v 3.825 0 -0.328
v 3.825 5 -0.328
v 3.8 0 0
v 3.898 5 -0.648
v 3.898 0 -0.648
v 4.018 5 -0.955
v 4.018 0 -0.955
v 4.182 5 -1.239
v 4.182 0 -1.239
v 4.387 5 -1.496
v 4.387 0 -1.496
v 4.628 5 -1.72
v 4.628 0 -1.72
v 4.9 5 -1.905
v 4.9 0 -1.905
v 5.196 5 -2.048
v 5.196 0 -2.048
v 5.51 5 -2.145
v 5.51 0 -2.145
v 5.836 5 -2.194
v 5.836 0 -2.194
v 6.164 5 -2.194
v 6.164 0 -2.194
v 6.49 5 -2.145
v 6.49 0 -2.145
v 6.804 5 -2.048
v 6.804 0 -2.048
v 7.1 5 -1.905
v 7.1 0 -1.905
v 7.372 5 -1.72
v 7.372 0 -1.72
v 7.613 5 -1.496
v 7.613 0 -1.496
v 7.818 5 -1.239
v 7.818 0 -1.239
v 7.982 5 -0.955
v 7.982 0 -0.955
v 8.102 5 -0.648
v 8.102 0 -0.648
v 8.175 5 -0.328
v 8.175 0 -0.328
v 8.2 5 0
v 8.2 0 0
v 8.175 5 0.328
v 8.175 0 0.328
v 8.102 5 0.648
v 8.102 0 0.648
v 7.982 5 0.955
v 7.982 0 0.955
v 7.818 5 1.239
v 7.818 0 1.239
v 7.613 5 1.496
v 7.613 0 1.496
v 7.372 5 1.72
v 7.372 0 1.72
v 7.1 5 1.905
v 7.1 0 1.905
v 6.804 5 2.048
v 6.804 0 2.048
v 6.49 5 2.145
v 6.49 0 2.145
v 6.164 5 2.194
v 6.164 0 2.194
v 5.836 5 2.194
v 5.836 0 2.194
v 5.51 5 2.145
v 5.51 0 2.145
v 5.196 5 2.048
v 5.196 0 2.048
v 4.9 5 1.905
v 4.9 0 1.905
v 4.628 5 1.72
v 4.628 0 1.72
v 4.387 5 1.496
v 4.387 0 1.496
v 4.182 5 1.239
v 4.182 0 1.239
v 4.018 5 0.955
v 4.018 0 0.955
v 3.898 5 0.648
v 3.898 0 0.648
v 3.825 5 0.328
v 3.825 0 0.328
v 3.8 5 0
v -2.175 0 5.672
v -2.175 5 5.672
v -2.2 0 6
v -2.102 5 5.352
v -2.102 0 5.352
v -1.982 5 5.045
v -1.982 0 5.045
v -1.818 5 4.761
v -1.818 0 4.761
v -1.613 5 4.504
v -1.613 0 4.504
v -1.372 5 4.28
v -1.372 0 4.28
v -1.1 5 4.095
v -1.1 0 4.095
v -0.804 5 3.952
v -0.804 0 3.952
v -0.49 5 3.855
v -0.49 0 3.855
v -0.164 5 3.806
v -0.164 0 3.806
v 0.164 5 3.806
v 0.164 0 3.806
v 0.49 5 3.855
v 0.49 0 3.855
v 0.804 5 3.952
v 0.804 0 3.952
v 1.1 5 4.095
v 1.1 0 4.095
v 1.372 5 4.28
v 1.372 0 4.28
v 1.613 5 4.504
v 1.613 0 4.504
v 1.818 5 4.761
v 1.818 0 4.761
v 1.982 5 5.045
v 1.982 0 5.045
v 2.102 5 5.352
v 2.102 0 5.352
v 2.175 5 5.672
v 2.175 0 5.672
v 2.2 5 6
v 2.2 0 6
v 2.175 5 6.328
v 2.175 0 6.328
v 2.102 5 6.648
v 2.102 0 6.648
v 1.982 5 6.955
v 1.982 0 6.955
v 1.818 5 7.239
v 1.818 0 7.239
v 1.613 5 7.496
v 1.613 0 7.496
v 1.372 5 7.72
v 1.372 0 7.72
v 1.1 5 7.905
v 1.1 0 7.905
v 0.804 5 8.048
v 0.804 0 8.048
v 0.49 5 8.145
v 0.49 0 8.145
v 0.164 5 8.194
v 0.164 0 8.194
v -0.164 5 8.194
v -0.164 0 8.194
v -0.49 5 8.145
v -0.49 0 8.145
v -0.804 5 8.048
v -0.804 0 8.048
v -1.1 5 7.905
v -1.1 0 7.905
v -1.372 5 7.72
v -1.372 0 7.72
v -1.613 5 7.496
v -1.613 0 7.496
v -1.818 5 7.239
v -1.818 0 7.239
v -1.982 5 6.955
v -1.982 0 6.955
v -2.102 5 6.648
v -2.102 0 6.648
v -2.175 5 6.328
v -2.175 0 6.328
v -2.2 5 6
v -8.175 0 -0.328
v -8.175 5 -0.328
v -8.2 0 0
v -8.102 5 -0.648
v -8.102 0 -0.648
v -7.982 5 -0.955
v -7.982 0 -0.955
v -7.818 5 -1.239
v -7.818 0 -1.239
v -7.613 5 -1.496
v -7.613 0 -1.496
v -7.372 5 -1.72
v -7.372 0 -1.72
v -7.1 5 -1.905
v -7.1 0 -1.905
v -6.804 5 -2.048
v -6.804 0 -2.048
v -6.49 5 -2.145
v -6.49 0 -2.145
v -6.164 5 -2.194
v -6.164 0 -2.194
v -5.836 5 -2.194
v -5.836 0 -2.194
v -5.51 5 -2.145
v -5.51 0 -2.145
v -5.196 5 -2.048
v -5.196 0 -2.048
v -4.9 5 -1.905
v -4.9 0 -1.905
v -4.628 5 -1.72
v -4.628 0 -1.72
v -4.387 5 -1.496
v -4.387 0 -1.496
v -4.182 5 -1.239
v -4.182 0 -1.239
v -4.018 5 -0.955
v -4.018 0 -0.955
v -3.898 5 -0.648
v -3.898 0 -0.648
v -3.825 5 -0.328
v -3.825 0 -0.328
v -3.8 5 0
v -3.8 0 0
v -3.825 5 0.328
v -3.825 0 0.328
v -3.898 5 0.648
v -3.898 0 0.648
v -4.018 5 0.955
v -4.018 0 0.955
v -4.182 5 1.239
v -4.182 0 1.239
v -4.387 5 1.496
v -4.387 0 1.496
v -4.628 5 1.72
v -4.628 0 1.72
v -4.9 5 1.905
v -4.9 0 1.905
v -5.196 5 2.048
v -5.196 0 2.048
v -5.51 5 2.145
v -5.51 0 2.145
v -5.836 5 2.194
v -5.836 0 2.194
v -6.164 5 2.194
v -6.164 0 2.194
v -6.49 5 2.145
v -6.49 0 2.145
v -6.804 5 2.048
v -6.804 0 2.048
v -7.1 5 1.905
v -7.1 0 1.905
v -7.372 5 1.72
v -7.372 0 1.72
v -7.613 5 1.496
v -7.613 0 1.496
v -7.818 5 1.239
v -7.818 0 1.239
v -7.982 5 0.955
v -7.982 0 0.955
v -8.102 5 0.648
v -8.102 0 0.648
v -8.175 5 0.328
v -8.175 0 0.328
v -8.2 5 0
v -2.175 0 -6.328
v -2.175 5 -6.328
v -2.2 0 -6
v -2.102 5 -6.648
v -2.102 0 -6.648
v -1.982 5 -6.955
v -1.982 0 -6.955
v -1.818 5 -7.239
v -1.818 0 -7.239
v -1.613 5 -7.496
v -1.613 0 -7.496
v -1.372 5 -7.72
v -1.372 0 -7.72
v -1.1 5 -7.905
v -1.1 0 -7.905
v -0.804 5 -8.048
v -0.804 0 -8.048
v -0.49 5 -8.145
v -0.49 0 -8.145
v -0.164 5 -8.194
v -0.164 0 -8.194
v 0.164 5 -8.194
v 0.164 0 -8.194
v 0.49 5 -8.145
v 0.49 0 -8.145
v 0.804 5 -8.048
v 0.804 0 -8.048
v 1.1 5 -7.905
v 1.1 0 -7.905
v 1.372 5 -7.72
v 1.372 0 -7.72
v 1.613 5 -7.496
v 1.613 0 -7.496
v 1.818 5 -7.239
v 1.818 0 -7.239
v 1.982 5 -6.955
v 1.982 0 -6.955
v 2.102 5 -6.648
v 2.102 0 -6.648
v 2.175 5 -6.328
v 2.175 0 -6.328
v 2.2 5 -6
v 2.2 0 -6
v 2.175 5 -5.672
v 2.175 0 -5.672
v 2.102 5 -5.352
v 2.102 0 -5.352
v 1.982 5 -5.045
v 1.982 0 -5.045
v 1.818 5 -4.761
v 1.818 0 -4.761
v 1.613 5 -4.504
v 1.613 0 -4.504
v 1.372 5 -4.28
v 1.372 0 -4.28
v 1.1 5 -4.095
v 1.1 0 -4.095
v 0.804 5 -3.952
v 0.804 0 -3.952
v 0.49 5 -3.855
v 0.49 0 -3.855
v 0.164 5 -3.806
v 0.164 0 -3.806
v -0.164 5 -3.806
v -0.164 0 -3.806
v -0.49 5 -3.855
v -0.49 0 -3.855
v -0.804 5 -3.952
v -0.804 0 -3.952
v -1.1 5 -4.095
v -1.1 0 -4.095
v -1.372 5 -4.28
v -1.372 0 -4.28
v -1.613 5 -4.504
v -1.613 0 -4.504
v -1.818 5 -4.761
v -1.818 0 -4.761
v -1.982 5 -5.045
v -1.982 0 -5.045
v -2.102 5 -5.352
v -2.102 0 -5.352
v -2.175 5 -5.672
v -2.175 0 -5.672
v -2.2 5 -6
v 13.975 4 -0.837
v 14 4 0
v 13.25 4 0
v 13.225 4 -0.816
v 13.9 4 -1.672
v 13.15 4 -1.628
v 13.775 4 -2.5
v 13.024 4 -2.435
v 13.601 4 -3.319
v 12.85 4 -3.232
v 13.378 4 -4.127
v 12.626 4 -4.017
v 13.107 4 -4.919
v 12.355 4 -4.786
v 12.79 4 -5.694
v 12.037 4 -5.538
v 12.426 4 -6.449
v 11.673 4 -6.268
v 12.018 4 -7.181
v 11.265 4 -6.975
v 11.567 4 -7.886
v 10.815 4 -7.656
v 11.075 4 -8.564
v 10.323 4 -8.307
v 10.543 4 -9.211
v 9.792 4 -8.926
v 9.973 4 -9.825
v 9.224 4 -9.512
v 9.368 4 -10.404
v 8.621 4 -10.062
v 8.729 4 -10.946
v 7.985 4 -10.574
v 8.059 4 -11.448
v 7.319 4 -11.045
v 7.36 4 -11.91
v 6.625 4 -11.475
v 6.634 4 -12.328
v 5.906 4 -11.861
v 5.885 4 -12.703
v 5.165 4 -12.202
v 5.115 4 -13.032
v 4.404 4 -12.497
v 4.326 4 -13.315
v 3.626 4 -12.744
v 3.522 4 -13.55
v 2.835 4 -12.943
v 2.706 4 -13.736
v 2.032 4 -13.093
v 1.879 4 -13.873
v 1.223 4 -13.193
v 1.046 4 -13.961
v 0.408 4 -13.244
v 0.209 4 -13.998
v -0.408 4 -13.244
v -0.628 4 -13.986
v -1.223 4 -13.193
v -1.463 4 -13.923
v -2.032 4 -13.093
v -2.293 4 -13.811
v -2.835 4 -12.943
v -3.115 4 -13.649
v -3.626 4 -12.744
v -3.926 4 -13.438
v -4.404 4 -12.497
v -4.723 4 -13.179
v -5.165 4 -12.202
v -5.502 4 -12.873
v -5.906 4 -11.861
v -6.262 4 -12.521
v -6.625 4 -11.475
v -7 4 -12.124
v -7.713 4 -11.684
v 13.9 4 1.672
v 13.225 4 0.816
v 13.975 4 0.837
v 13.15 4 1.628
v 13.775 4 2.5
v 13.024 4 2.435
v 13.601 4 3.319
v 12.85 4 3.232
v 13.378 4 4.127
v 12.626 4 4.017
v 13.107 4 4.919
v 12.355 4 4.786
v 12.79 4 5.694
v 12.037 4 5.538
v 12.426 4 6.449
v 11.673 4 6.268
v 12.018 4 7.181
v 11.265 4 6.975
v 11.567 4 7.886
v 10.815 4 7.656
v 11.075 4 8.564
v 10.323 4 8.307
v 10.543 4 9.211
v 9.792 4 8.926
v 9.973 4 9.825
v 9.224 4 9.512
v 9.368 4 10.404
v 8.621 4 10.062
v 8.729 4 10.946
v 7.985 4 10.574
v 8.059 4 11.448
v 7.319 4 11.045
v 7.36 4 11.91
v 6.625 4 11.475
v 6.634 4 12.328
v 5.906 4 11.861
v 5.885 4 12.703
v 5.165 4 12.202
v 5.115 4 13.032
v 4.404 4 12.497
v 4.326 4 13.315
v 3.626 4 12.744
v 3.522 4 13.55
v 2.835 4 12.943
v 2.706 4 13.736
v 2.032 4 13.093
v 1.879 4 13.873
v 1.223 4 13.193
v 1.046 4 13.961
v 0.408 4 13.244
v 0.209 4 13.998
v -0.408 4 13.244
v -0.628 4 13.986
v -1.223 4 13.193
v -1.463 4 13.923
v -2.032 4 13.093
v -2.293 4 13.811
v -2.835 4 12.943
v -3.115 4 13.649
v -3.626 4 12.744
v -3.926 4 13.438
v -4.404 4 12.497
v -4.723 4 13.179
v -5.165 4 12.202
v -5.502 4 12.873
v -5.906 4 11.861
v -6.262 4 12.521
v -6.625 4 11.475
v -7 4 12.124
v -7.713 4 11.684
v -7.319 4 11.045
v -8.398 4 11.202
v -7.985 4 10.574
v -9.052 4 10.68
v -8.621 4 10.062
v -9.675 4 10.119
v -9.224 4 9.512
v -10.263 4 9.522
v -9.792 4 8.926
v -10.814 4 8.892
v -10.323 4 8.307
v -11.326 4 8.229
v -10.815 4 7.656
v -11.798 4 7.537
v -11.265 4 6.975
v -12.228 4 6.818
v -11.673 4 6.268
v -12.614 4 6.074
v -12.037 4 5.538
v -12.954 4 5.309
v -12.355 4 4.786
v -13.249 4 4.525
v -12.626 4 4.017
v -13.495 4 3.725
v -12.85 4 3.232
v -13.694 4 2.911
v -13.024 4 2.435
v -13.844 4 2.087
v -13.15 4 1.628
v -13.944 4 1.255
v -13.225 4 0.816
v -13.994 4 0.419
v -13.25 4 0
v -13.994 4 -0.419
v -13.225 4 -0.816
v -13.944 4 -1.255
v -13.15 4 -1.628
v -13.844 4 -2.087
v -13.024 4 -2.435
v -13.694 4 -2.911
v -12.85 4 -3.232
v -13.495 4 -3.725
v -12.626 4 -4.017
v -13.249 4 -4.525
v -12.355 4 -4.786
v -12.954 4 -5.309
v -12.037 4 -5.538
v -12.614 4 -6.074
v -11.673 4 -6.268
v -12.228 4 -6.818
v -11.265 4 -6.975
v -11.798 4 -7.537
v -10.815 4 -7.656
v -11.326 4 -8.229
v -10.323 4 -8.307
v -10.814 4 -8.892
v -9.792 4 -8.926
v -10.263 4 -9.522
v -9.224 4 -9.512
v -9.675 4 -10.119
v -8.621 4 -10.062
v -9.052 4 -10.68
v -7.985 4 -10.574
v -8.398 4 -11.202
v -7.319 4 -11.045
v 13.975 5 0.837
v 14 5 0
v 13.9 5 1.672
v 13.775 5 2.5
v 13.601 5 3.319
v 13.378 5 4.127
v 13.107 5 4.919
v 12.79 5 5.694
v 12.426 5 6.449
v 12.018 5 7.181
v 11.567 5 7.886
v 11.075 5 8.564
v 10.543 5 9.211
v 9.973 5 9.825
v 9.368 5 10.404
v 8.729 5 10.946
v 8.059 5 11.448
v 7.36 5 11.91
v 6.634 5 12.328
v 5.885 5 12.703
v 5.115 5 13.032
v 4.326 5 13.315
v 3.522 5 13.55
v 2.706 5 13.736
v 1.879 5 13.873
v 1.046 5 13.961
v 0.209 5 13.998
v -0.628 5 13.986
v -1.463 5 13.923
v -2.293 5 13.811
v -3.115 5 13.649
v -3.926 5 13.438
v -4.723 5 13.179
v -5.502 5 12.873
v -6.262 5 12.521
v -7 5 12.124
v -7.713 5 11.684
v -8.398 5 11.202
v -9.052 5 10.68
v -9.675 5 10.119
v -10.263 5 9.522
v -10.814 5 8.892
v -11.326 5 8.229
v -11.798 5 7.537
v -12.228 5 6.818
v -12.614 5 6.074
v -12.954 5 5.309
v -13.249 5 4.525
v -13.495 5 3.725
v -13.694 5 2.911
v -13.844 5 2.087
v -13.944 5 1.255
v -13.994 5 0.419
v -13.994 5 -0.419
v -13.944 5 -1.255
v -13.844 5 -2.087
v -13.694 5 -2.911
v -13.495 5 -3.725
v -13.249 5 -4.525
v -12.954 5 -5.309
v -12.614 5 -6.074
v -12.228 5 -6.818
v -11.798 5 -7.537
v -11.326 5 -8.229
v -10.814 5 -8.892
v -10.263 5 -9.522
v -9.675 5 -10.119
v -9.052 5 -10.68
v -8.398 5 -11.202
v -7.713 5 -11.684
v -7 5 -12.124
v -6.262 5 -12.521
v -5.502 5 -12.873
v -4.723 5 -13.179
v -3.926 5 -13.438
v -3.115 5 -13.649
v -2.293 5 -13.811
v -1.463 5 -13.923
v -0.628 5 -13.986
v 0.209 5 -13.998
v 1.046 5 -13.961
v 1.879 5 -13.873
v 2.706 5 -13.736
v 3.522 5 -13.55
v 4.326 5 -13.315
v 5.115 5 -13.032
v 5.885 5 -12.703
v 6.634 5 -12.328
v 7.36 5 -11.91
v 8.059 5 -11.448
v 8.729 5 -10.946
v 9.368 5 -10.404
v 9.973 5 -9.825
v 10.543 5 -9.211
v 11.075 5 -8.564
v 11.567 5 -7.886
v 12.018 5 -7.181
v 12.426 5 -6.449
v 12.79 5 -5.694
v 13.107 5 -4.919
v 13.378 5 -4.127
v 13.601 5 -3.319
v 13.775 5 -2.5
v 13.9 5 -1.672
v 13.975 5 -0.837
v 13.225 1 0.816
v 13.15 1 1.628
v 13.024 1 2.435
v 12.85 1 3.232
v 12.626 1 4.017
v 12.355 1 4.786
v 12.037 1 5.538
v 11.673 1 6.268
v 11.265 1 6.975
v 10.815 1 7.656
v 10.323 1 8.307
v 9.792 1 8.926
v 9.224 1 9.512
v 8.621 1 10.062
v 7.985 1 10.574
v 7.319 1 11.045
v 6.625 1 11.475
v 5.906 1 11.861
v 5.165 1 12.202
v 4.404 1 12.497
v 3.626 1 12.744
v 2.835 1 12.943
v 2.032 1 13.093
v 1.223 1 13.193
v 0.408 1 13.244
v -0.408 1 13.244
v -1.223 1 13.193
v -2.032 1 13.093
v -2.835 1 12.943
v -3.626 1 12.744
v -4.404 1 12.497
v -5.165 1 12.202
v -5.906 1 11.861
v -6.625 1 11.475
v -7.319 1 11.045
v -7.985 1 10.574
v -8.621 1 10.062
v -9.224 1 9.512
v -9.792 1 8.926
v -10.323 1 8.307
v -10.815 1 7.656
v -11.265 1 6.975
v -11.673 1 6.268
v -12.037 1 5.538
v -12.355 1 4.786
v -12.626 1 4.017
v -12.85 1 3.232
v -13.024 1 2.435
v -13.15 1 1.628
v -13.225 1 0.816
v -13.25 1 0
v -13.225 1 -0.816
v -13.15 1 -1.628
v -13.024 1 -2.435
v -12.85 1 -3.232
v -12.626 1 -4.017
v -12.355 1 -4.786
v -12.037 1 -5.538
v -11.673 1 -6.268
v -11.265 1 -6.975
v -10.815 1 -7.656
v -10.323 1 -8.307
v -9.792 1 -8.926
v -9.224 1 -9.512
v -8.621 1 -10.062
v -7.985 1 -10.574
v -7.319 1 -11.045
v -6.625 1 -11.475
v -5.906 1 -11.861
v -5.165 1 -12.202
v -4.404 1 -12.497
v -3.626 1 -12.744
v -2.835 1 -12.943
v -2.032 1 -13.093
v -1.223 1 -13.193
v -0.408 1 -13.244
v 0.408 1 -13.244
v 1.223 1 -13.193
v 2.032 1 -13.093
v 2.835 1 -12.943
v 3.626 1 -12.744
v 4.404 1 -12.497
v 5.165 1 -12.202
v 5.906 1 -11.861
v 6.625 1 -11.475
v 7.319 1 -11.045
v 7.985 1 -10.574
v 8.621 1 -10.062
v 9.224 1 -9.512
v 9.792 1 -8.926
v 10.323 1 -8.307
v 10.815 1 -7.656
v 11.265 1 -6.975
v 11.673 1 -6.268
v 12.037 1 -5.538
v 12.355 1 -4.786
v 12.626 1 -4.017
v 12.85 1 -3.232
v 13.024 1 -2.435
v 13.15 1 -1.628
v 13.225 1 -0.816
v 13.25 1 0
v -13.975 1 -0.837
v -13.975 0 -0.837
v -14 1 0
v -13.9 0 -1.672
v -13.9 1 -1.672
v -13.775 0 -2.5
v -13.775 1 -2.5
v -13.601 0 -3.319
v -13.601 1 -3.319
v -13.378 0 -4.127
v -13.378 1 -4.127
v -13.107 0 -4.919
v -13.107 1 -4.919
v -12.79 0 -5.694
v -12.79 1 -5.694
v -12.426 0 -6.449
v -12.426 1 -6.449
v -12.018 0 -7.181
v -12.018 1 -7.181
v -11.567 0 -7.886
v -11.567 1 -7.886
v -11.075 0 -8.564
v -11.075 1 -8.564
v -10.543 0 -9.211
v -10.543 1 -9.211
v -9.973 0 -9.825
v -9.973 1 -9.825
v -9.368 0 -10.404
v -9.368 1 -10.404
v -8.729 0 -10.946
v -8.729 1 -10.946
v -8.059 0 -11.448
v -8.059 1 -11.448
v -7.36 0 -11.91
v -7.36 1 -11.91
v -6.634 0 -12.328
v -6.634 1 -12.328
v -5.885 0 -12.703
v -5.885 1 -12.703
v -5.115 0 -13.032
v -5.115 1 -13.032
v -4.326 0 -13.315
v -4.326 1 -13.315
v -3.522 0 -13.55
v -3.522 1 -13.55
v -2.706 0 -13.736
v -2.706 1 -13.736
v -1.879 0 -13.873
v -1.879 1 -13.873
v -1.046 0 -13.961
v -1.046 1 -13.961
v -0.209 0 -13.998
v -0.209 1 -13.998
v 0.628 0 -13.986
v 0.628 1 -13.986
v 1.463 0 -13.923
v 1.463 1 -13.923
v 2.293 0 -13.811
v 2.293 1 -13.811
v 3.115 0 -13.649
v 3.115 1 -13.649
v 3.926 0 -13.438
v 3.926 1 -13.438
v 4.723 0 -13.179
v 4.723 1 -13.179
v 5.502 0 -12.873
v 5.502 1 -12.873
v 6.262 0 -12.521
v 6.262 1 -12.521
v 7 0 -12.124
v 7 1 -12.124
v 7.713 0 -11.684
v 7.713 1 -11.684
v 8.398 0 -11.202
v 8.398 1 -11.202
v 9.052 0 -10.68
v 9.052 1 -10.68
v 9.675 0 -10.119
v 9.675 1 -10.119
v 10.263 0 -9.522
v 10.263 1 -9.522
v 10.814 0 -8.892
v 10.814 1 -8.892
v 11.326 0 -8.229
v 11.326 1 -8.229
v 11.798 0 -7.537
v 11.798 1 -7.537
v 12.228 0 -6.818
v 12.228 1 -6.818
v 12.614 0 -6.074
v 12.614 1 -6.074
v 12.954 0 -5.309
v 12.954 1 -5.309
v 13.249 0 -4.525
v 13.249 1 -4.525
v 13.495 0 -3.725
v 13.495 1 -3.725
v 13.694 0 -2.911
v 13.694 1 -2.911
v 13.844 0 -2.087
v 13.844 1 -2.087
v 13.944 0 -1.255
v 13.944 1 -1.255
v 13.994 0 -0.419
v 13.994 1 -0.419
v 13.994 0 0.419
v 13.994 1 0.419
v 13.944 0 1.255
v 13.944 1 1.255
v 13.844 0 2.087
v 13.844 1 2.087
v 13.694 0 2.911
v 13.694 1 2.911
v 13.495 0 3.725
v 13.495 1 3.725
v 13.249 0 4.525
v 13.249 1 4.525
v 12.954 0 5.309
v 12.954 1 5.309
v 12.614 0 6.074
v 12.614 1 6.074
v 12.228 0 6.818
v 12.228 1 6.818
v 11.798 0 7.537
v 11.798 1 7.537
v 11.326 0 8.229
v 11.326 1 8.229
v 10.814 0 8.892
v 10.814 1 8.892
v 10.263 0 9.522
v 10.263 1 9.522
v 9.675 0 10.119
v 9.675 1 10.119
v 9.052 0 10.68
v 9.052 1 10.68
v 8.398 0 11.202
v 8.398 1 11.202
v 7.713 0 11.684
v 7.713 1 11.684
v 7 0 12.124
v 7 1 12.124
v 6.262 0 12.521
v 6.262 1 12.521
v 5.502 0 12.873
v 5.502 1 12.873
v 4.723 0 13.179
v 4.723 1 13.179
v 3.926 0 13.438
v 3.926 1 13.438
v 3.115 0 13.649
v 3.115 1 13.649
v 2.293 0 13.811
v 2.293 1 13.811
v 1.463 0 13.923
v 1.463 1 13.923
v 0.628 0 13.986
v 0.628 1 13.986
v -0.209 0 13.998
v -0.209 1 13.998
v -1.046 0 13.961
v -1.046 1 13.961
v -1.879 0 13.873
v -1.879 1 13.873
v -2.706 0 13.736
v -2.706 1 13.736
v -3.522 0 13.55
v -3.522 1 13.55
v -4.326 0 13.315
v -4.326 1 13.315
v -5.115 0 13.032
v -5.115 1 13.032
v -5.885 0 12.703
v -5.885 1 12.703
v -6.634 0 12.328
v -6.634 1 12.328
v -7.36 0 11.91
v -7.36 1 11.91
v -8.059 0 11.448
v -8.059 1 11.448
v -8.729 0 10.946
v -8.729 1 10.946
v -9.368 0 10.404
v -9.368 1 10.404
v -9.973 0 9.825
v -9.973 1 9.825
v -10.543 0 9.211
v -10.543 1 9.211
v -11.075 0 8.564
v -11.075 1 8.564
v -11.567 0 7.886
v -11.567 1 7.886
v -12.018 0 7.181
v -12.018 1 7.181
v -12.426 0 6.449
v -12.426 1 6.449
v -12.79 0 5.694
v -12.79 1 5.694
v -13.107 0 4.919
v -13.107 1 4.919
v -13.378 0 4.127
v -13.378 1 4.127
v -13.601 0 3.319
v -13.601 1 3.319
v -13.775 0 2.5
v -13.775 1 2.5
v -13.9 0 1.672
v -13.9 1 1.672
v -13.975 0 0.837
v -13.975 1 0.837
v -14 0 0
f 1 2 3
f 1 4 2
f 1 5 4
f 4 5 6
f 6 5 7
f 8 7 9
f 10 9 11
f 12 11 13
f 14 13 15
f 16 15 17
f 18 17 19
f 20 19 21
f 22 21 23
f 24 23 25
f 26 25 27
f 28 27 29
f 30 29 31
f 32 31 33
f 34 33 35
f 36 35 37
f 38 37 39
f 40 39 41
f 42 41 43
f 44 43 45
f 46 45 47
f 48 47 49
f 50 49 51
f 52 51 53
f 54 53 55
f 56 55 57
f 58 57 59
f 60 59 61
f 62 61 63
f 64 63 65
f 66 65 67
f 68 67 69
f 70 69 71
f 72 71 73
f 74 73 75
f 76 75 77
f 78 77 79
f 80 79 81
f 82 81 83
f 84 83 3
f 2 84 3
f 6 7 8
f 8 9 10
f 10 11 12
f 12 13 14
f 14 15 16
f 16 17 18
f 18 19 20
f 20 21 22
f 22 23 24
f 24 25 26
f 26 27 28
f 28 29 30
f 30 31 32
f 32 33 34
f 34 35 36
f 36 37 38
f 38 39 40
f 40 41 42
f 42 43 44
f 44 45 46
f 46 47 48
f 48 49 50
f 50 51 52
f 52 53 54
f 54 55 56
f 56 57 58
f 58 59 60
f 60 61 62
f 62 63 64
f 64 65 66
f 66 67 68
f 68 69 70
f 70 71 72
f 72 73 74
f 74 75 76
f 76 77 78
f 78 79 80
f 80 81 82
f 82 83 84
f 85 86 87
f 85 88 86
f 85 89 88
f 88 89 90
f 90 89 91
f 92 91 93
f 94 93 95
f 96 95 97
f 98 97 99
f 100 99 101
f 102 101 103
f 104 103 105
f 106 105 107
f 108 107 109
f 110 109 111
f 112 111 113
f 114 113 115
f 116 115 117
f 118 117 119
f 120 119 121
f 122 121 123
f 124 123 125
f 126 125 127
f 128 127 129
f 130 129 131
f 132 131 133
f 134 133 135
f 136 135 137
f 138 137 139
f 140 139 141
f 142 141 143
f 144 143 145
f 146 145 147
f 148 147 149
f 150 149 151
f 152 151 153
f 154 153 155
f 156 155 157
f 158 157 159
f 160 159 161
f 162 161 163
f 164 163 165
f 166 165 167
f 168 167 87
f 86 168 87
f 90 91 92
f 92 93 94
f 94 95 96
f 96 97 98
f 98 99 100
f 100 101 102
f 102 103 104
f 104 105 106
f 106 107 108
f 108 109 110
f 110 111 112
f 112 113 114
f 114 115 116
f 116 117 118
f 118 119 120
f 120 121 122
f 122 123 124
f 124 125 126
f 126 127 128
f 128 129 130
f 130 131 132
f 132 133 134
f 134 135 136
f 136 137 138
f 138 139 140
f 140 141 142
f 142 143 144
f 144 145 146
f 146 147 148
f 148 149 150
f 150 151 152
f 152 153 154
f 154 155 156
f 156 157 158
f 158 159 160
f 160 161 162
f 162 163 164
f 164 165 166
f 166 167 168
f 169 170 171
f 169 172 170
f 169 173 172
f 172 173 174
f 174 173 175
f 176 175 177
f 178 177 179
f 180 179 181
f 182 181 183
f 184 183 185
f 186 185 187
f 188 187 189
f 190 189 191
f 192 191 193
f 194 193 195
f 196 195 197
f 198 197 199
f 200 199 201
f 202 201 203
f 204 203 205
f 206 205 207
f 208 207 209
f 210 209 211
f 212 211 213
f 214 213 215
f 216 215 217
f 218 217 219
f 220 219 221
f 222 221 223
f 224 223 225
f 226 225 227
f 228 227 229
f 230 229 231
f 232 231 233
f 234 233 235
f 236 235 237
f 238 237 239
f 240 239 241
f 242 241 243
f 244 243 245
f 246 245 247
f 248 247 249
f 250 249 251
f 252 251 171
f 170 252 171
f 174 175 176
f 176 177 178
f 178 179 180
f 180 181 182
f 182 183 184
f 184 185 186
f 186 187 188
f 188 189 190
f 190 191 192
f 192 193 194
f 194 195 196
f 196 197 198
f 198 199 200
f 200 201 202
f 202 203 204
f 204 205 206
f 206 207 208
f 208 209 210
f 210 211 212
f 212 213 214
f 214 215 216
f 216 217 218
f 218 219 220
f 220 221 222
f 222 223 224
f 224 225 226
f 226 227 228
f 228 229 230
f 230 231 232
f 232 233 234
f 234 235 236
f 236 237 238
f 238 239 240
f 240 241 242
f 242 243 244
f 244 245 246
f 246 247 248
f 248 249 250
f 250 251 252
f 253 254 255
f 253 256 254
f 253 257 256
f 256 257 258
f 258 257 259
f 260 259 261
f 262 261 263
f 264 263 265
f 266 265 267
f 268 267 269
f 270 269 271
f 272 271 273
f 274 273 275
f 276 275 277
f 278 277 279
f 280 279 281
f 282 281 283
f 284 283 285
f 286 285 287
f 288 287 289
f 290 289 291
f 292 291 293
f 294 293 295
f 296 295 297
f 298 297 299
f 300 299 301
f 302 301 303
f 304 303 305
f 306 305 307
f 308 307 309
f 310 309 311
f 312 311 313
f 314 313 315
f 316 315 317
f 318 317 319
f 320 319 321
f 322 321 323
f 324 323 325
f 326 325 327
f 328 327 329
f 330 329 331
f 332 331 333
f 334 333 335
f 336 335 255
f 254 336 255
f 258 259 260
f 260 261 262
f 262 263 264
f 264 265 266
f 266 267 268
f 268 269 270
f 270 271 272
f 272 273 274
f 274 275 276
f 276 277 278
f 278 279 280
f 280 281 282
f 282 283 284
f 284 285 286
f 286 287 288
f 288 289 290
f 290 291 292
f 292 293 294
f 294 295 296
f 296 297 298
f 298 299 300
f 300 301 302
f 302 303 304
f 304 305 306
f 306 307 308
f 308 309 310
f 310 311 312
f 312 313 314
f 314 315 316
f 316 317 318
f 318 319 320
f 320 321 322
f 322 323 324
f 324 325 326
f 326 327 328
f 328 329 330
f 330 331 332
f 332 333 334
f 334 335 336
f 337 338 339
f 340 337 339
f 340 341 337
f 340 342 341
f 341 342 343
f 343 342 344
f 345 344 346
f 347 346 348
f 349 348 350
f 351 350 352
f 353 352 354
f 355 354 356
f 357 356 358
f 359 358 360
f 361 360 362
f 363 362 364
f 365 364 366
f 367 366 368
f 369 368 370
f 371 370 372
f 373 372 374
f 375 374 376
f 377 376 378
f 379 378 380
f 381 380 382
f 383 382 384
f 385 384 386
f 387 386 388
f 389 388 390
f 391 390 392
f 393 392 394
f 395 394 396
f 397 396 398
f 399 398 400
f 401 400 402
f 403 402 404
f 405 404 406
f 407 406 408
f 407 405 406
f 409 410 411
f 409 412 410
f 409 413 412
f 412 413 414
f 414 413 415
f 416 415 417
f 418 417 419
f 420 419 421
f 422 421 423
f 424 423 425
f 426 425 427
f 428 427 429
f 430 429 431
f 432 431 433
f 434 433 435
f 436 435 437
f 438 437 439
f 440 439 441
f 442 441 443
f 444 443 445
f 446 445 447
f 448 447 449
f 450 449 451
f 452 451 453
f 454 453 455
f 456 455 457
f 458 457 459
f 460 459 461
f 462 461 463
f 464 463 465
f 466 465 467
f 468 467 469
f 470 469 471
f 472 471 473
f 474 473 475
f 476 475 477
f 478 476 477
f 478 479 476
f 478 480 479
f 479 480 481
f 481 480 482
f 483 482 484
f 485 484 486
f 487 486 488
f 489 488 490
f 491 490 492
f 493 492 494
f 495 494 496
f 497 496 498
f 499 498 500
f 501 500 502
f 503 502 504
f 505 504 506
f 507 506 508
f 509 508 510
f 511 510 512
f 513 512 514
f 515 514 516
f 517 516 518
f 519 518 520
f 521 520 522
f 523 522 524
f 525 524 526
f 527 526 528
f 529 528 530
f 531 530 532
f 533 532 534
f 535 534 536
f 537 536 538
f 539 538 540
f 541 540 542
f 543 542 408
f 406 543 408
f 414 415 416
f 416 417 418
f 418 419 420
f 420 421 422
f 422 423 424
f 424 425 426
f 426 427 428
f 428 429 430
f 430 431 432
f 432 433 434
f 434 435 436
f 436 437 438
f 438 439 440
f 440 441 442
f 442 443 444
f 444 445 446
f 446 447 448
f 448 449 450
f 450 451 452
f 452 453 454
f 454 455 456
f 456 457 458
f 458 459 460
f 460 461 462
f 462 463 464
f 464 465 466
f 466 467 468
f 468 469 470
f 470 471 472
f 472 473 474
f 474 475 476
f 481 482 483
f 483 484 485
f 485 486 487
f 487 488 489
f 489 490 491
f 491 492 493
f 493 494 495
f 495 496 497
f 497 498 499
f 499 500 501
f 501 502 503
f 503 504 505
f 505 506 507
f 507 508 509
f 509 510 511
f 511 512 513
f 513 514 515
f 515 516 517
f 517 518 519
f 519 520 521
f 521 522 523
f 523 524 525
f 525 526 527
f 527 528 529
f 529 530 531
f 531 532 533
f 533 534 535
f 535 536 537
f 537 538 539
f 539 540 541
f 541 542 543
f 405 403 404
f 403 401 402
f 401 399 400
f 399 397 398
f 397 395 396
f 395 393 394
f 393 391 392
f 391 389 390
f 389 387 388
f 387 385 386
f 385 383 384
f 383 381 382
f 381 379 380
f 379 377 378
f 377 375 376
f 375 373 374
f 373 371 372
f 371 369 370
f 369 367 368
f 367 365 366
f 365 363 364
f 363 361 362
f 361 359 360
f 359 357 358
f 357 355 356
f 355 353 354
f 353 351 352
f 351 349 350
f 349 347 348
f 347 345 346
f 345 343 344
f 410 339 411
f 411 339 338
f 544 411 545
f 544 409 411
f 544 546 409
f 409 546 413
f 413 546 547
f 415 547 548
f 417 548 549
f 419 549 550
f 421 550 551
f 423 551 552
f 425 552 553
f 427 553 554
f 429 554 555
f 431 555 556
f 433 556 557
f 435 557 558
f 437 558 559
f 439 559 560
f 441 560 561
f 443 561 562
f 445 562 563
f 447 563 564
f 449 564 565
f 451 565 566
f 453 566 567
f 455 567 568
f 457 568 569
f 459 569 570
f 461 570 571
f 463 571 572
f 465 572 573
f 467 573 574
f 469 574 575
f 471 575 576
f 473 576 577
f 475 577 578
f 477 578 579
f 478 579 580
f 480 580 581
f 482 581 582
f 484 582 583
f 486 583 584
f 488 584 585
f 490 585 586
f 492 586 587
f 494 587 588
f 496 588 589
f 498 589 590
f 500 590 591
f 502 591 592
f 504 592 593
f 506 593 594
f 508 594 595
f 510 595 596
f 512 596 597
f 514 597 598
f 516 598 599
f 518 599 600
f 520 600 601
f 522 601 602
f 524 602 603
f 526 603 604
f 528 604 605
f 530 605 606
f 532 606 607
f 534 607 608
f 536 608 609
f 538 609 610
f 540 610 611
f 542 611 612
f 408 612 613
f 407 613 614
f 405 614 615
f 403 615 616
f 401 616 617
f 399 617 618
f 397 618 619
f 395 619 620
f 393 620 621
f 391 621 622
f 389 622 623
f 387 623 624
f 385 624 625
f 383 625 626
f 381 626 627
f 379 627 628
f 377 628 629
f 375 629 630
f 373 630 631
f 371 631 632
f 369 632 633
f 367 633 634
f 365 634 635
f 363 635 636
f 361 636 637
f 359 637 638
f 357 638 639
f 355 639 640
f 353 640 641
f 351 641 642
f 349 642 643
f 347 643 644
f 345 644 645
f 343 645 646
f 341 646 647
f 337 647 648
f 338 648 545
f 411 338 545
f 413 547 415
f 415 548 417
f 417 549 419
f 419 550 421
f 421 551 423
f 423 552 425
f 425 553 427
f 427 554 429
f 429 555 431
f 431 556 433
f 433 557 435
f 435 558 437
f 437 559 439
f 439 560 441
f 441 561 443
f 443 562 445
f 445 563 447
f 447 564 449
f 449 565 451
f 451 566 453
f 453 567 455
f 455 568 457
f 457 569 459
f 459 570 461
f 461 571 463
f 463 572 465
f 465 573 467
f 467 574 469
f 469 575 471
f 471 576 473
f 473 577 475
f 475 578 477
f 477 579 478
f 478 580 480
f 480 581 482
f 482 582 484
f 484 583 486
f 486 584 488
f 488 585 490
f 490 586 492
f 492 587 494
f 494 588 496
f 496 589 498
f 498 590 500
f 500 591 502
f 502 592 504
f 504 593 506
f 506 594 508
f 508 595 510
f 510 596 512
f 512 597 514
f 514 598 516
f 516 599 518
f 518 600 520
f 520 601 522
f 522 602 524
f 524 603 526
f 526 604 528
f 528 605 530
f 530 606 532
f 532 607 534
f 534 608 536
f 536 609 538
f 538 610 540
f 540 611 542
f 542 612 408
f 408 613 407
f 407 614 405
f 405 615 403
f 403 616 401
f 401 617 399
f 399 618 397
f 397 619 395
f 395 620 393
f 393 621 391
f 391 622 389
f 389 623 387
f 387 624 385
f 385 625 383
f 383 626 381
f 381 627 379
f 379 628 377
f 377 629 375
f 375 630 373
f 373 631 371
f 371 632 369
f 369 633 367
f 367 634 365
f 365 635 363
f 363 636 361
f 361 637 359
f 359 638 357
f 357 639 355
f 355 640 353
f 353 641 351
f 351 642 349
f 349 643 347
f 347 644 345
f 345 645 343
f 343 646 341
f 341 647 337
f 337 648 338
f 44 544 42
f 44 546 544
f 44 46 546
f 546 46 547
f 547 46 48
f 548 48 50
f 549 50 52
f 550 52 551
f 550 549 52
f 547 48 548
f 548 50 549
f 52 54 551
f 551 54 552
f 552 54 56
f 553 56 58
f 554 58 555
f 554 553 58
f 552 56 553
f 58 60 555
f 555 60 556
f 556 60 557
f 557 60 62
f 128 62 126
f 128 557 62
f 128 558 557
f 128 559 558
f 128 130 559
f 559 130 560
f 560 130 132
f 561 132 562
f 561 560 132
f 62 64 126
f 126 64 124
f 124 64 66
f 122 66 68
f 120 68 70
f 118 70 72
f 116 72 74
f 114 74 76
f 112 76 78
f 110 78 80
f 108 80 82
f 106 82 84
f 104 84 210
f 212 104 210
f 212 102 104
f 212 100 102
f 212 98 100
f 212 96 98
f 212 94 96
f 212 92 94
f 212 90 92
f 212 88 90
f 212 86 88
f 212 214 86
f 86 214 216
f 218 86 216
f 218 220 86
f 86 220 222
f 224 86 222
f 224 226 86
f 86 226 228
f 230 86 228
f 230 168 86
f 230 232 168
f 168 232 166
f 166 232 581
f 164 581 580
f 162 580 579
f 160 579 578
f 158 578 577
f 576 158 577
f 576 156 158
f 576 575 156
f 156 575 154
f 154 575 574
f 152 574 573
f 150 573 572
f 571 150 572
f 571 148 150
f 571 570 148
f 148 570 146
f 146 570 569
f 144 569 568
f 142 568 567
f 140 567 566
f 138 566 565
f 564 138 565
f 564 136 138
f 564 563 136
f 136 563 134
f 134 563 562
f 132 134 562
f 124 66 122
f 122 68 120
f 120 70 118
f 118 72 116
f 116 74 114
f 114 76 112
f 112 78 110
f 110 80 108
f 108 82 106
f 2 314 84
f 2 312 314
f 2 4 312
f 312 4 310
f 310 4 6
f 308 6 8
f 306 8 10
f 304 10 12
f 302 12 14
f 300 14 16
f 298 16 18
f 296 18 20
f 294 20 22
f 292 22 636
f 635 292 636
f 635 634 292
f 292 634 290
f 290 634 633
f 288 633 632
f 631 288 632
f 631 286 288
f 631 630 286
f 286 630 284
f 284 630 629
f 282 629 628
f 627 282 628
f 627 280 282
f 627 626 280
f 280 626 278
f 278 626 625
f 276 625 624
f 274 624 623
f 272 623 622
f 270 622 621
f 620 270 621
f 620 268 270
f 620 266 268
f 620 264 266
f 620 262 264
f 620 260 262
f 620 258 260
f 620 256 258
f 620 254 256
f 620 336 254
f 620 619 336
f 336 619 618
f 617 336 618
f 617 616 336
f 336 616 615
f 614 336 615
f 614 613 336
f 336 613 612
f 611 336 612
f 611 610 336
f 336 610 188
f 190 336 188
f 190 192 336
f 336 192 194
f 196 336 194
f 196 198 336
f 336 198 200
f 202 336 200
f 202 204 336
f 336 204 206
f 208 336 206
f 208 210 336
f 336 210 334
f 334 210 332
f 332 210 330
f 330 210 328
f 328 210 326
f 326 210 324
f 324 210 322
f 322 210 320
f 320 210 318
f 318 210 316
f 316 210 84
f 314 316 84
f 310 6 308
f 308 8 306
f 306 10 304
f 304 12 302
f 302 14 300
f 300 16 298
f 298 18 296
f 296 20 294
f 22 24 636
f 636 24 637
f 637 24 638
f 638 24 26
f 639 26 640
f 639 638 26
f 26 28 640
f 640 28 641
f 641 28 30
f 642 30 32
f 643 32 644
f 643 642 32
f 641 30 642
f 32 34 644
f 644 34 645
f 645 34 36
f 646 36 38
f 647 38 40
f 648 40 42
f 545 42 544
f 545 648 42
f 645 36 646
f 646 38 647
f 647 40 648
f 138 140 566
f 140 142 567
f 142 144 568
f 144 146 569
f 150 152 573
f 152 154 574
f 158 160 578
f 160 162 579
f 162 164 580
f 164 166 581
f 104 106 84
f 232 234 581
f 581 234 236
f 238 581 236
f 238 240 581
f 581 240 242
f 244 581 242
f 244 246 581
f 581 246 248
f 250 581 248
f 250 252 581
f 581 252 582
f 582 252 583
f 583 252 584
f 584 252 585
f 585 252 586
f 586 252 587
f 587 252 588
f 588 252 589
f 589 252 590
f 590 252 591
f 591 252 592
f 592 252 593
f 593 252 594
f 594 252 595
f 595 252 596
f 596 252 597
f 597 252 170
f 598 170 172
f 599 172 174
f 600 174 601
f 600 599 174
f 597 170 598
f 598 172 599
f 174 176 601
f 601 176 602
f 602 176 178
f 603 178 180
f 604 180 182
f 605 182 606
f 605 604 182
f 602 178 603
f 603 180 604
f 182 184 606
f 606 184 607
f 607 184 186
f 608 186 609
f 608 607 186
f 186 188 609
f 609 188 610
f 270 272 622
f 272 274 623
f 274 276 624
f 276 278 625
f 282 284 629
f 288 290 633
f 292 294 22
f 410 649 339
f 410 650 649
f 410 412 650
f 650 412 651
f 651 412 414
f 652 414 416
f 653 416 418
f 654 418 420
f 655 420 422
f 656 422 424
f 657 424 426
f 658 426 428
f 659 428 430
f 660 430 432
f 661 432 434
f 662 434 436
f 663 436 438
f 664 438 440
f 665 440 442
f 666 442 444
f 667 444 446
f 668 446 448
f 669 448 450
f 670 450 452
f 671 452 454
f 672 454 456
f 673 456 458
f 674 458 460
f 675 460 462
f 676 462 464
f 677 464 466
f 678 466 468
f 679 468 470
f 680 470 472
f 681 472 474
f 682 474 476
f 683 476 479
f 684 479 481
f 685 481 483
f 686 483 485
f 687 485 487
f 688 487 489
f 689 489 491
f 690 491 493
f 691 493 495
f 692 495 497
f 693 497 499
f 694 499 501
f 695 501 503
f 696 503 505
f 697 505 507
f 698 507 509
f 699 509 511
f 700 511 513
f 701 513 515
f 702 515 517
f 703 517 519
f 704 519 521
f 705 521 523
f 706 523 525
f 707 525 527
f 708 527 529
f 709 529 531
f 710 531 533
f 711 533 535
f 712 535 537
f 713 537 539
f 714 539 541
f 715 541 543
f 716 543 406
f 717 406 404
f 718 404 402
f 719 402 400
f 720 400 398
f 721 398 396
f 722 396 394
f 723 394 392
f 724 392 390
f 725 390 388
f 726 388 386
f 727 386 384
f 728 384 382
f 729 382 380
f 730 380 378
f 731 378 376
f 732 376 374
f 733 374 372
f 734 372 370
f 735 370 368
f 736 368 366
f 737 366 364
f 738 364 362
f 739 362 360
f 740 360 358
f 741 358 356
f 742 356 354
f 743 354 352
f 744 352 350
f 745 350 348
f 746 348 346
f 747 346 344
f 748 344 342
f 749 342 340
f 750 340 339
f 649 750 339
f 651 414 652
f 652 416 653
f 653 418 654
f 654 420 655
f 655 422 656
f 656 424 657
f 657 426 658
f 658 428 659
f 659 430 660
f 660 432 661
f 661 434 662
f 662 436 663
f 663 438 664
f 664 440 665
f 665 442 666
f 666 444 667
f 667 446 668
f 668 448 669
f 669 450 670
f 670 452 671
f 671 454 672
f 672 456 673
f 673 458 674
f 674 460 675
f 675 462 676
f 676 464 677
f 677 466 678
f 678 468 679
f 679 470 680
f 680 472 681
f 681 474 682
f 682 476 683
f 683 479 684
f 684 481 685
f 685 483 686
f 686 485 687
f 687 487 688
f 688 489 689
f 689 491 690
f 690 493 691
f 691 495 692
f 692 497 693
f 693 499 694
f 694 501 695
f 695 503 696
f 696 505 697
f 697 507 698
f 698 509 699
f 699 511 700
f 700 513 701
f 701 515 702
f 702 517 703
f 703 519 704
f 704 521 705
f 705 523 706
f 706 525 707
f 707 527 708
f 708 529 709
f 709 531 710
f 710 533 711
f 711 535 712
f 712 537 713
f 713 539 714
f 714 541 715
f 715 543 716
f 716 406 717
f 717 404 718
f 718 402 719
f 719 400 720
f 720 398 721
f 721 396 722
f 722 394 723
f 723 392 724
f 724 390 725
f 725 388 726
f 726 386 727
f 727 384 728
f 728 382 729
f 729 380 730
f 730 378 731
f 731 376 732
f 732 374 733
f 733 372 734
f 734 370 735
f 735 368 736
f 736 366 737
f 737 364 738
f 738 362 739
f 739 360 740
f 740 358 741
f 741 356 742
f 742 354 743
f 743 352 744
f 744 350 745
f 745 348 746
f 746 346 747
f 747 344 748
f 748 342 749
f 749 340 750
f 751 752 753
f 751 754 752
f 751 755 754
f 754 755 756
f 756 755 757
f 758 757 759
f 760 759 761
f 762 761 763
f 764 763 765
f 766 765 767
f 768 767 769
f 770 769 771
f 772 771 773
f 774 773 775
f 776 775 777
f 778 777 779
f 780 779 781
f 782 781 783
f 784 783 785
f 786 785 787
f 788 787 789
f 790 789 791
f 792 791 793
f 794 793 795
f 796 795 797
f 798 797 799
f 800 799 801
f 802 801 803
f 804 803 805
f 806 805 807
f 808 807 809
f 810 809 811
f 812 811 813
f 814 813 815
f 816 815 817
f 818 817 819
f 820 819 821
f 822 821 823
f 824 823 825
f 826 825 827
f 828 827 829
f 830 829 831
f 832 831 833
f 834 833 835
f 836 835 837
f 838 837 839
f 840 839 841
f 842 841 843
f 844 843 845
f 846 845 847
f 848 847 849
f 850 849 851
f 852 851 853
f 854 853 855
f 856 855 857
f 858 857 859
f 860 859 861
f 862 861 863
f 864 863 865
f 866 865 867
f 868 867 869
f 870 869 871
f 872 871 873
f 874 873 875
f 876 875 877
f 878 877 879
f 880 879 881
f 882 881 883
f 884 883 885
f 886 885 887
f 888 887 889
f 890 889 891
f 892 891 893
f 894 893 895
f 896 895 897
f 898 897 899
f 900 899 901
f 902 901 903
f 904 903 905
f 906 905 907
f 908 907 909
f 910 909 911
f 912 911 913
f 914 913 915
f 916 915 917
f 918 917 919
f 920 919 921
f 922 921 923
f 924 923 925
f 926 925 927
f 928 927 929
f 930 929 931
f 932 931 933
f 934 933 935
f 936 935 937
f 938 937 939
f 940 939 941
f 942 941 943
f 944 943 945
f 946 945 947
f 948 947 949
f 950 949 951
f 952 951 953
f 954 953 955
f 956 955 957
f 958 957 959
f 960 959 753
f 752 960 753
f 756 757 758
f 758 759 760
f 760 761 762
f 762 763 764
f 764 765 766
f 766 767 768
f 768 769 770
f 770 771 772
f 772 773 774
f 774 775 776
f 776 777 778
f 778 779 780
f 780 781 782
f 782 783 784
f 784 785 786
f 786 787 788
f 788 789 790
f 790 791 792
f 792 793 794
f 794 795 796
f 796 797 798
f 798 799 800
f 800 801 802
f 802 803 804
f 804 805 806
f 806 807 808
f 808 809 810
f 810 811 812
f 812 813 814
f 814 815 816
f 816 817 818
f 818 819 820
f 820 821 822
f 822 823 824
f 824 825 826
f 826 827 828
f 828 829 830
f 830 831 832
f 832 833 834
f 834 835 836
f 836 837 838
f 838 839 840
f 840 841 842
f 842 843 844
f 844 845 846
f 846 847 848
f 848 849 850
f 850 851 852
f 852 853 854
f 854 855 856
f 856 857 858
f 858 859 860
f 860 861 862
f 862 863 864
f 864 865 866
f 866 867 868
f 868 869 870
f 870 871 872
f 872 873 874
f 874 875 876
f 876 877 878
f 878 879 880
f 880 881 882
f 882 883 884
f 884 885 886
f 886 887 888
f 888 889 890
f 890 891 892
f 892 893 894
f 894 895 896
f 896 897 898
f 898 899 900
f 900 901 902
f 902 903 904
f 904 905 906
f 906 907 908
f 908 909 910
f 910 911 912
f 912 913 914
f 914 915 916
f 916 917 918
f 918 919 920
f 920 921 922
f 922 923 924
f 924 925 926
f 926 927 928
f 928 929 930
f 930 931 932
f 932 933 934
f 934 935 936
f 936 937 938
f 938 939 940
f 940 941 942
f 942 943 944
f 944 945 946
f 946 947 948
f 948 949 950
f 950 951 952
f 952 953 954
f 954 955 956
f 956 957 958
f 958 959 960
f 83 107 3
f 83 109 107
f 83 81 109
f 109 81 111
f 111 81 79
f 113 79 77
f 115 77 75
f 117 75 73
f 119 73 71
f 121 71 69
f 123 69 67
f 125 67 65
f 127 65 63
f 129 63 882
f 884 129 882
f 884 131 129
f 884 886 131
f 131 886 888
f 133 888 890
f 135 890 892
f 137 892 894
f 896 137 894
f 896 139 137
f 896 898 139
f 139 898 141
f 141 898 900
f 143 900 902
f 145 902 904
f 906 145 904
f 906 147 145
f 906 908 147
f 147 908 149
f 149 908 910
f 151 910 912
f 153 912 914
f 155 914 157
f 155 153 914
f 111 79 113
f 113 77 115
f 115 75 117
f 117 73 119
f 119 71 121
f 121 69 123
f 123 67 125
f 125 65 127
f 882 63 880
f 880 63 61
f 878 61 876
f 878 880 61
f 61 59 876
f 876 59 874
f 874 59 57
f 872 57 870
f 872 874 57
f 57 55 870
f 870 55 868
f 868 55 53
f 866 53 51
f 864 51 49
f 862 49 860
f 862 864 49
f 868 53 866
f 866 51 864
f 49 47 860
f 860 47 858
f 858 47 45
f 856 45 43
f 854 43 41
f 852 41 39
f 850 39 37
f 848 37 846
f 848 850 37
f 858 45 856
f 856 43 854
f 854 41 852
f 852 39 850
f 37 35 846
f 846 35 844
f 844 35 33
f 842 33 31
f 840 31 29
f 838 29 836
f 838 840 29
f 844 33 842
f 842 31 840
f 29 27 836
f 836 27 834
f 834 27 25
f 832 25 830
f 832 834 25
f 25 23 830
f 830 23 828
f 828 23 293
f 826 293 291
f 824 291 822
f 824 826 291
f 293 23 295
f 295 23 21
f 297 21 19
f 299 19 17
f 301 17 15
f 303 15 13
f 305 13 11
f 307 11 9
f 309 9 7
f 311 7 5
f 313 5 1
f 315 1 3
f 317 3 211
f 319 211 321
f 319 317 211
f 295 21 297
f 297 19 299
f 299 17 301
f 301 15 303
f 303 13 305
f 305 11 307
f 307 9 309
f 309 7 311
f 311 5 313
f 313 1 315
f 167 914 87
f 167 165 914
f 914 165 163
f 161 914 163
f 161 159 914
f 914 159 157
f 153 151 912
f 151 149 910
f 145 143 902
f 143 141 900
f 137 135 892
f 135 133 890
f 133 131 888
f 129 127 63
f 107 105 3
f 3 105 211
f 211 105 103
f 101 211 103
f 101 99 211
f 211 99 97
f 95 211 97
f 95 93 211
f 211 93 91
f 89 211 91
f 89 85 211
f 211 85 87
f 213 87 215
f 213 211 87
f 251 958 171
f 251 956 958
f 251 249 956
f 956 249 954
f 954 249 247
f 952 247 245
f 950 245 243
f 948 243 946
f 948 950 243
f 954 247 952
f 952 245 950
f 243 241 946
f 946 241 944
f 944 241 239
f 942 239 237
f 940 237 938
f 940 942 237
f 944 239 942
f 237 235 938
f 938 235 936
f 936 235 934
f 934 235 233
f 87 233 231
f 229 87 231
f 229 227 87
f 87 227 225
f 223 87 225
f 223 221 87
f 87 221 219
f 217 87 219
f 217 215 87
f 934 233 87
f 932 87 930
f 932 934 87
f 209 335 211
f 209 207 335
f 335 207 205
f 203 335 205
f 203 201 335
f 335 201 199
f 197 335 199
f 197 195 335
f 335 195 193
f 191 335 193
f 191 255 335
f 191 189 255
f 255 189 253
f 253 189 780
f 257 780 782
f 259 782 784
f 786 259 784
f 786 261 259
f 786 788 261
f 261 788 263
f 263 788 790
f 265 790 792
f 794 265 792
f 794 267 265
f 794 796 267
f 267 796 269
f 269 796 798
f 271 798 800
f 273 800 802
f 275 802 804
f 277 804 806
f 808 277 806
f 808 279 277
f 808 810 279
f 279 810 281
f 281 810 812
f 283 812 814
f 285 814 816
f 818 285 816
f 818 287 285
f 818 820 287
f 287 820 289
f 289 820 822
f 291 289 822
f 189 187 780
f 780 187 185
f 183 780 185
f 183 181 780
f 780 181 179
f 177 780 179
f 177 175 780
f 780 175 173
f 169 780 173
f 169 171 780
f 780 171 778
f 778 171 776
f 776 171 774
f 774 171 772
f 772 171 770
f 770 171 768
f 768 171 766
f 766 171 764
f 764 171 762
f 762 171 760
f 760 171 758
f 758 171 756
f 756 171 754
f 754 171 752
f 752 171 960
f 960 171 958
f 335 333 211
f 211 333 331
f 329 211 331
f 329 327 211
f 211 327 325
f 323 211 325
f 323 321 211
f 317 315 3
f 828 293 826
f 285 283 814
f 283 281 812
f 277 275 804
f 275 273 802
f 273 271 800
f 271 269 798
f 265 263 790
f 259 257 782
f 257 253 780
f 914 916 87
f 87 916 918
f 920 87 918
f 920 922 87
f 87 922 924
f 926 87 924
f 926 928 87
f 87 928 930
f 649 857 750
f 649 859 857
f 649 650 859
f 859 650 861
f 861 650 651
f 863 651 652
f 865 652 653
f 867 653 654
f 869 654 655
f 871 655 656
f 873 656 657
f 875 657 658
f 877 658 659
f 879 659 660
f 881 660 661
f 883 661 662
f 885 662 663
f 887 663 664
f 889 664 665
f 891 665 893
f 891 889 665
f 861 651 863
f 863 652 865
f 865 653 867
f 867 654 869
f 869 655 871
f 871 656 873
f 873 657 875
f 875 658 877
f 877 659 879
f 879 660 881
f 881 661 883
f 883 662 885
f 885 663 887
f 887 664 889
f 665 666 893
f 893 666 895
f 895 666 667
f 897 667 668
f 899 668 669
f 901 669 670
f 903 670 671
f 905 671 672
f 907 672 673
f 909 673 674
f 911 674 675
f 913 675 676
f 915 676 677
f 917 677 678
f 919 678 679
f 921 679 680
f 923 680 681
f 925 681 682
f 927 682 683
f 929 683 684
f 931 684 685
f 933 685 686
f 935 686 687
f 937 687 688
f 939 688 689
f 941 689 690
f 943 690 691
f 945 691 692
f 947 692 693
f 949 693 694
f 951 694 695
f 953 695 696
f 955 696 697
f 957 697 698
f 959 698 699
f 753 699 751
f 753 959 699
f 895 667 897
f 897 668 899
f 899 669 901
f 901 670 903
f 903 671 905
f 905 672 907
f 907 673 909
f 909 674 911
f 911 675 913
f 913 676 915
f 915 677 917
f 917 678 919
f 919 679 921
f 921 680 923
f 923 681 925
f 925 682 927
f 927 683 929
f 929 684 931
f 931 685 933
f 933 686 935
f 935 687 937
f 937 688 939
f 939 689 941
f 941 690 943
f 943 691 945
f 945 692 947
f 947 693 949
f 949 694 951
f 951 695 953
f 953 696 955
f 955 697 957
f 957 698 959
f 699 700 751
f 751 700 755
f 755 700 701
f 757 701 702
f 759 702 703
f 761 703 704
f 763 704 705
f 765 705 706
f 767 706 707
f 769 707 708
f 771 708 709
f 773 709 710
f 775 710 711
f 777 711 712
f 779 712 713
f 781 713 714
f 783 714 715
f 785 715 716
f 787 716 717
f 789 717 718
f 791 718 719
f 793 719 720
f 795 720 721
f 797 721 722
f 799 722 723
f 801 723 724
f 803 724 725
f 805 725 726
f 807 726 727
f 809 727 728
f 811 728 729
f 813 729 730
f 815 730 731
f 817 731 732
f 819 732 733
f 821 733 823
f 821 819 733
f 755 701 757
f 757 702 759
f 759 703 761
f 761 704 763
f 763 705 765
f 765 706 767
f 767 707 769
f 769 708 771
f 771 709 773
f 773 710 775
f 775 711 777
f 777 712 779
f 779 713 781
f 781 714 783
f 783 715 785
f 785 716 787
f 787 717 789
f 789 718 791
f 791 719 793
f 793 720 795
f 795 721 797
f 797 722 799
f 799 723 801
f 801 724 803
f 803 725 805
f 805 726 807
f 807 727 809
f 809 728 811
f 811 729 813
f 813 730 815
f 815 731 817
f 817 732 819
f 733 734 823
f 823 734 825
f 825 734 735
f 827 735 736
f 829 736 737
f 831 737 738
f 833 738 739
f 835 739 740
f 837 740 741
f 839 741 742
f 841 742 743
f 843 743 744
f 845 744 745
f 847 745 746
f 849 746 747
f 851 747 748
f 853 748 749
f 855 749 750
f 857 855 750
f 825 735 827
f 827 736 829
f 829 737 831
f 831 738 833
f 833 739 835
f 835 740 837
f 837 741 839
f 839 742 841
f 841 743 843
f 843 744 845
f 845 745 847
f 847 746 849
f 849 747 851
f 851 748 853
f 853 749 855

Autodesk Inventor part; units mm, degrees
ref_plane "YZ Plane" through (0, 0, 0) normal (1, 0, 0) x (0, 1, 0)
ref_plane "XZ Plane" through (0, 0, 0) normal (0, 1, 0) x (-1, 0, 0)
ref_plane "XY Plane" through (0, 0, 0) normal (0, 0, 1) x (1, 0, 0)
sketch "Sketch1" plane through (0, 0, 0) normal (0, 1, 0) x (-1, 0, 0)
  circle A0 centre (0, 0) radius 14
  dimension "d0" = 28
extrude "Extrusion1" add sketch "Sketch1" along normal blind 1
sketch "Sketch2" plane through (0, 1, 0) normal (0, 1, 0) x (1, 0, 0)
  circle A0 centre (0, 0) radius 13.25
  dimension "d3" = 26.5
extrude "Extrusion2" add sketch "Sketch2" along normal blind 3
sketch "Sketch3" plane through (0, 4, 0) normal (0, 1, 0) x (1, 0, 0)
  circle A0 centre (0, 0) radius 14
  dimension "d6" = 28
extrude "Extrusion3" add sketch "Sketch3" along normal blind 1
sketch "Sketch4" plane through (0, 5, 0) normal (0, 1, 0) x (1, 0, 0)
  circle A0 centre (-6, 0) radius 2.2
  circle A1 centre (6, 0) radius 2.2
  circle A2 centre (0, -6) radius 2.2
  circle A3 centre (0, 6) radius 2.2
  point P0 (0, 0)
  dimension "d9" = 4.4
  dimension "d10" = 6
  dimension "d11" = 4.4
  dimension "d12" = 12
  dimension "d13" = 4.4
  dimension "d14" = 6
  dimension "d15" = 4.4
  dimension "d16" = 6
hole "Hole1" at (0, 5, 6) at (-6, 5, 0) at (6, 5, 0) at (0, 5, -6) direction (0, -1, 0) diameter 4.4 end through all
properties part number "XLRotorWheel" material "ABS Plastic"
